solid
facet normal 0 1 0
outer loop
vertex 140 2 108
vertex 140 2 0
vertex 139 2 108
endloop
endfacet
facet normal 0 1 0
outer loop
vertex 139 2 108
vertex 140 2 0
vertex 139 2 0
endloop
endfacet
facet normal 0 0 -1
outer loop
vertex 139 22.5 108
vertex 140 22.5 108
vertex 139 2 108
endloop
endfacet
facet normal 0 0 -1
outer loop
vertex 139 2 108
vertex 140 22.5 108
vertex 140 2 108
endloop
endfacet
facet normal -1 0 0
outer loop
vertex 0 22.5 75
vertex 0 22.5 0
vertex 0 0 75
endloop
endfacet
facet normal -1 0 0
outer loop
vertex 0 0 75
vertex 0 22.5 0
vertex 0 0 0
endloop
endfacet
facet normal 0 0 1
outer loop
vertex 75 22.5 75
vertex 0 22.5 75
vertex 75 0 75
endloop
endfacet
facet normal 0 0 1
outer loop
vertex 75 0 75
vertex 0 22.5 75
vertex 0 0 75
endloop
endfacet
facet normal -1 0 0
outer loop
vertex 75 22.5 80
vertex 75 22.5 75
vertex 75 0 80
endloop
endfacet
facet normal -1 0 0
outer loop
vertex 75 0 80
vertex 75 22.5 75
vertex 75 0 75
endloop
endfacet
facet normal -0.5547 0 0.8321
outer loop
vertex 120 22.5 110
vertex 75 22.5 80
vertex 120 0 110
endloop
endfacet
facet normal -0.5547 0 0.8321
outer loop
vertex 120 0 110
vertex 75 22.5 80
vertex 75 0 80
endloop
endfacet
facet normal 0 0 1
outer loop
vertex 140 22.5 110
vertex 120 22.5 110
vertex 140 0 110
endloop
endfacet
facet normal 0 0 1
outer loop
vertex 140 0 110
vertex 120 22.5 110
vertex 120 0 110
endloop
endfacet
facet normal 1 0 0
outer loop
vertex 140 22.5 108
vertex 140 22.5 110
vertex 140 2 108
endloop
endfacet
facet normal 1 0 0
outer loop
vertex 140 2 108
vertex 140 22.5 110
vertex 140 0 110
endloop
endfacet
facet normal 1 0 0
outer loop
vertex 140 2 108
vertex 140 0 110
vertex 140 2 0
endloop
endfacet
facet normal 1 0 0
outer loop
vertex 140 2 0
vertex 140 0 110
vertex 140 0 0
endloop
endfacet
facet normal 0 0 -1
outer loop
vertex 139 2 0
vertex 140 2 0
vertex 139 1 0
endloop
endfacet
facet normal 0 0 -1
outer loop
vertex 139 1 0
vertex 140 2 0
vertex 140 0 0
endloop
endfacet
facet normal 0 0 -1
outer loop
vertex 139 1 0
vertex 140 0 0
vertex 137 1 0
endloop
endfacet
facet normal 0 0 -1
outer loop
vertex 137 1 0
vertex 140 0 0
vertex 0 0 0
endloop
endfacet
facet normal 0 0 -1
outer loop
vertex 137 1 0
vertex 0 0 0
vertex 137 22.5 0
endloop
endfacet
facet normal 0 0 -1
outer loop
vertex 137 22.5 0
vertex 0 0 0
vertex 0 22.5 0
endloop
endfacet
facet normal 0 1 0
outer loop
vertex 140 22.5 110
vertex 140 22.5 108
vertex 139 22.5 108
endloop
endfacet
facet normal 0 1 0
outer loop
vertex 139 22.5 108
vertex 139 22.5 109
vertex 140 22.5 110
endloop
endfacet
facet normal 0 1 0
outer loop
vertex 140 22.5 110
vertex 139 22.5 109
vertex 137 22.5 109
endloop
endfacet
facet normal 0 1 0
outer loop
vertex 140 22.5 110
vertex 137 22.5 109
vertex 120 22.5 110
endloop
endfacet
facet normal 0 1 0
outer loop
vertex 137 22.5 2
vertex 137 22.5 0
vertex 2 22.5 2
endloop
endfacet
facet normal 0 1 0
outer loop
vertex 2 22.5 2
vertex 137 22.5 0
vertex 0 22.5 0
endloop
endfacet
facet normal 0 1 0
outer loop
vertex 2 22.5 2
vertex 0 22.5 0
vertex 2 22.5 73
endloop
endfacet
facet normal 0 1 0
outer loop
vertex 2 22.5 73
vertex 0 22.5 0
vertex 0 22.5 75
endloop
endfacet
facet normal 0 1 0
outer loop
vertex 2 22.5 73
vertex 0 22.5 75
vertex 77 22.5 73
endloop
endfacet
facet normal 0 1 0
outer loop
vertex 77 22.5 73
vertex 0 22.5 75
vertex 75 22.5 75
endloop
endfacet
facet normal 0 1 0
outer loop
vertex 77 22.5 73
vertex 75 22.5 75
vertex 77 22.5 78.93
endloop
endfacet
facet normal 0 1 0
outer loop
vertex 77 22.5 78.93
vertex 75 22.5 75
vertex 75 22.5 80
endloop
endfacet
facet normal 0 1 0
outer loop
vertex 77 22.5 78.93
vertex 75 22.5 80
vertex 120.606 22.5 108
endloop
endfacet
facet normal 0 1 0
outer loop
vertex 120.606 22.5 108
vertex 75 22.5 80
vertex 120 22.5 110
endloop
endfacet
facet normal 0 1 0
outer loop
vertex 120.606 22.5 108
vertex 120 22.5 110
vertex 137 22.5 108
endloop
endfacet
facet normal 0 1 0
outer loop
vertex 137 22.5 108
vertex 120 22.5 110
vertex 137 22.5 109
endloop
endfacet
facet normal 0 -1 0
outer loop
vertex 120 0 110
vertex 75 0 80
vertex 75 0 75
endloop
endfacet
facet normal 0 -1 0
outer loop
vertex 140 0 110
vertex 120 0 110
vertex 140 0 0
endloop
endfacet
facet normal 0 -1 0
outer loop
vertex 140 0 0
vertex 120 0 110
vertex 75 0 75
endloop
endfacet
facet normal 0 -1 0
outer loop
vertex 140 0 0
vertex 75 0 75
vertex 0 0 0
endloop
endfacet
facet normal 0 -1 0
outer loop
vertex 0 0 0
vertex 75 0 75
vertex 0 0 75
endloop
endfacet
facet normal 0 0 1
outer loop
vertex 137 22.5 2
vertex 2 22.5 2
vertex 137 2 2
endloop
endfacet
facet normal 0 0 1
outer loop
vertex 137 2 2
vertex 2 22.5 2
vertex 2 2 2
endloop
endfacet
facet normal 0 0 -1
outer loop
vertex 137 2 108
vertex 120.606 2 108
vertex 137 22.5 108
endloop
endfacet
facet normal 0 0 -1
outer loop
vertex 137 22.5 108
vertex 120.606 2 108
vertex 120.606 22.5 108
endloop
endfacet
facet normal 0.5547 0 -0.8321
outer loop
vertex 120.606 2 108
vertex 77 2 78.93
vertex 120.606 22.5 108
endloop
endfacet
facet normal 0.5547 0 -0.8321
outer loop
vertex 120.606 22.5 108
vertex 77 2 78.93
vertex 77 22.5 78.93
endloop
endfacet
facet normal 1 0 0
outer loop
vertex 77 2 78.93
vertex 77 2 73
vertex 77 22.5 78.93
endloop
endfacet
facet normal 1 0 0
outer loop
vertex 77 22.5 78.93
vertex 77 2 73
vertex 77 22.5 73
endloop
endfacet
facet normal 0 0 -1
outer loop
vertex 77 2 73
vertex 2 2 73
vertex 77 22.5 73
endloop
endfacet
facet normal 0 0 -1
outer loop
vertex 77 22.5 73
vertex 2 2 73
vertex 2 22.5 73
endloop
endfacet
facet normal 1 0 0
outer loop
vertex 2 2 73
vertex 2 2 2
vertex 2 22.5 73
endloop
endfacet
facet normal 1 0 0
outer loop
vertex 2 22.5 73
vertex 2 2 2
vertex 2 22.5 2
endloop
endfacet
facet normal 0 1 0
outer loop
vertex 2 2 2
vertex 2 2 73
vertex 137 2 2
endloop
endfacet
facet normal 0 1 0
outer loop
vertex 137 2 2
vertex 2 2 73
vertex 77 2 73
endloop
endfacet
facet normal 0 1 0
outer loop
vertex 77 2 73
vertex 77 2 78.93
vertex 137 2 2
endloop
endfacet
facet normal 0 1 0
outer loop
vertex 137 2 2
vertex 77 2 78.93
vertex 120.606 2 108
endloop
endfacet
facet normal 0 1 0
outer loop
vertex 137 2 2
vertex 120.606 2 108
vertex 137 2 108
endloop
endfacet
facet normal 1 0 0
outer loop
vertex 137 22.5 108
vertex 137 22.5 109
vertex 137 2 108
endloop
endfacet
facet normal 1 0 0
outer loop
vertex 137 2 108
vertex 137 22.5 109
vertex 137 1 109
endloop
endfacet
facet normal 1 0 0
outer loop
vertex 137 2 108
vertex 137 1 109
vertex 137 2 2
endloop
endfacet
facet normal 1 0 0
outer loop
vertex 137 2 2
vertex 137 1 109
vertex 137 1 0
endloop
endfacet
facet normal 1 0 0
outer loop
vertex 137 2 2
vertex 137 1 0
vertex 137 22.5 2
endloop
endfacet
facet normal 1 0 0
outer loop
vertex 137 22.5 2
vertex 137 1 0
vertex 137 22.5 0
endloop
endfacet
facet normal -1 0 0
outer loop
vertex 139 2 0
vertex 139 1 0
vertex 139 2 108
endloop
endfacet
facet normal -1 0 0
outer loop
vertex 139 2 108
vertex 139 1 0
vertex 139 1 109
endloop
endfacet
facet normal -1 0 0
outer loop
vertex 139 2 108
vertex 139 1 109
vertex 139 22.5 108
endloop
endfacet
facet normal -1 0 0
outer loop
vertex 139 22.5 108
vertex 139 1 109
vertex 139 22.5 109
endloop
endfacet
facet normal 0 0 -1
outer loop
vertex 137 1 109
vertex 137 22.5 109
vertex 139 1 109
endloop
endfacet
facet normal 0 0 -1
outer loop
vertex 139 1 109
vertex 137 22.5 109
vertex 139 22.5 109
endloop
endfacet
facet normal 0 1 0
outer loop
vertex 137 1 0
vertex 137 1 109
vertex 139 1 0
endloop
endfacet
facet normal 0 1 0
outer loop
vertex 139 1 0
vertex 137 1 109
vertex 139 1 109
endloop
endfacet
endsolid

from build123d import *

# Parameters (mm, degrees)
BOSS_EXTRUDE1_DEPTH = 22.5
CUT_EXTRUDE1_DEPTH  = 20.5
SKETCH3_W           = 106
SKETCH3_H           = 20.5
CUT_EXTRUDE2_DEPTH  = 20
SKETCH4_W           = 3
SKETCH4_H           = 20.5
CUT_EXTRUDE3_DEPTH  = 20
SKETCH5_W           = 2
SKETCH5_H           = 20.5
CUT_EXTRUDE4_DEPTH  = 1
SKETCH7_W           = 2
SKETCH7_H           = 109
CUT_EXTRUDE6_DEPTH  = 1


with BuildPart() as part:
    # Base → Boss-Extrude1 (new body)
    with BuildSketch(Plane(origin=(0, 0, 0), x_dir=(1, 0, 0), z_dir=(0, 1, 0))):
        Polygon((0, 0), (140, 0), (140, -110), (120, -110), (75, -80), (75, -75), (0, -75), align=None)
    extrude(amount=BOSS_EXTRUDE1_DEPTH)

    # Sketch2 → Cut-Extrude1 (cut)
    with BuildSketch(Plane(origin=(0, 22.5, 0), x_dir=(1, 0, 0), z_dir=(0, 1, 0))):
        Polygon((2, -2), (2, -73), (77, -73), (77, -78.929632483), (120.605551275, -108), (138, -108), (138, -2), align=None)
    extrude(amount=-CUT_EXTRUDE1_DEPTH, mode=Mode.SUBTRACT)

    # Sketch3 → Cut-Extrude2 (cut)
    with BuildSketch(Plane.ZY.offset(-138)):
        with Locations((55, 12.25)):
            Rectangle(SKETCH3_W, SKETCH3_H)
    extrude(amount=-CUT_EXTRUDE2_DEPTH, mode=Mode.SUBTRACT)

    # Sketch4 → Cut-Extrude3 (cut)
    with BuildSketch(Plane.XY.offset(2)):
        with Locations((138.5, 12.25)):
            Rectangle(SKETCH4_W, SKETCH4_H)
    extrude(amount=-CUT_EXTRUDE3_DEPTH, mode=Mode.SUBTRACT)

    # Sketch5 → Cut-Extrude4 (cut)
    with BuildSketch(Plane(origin=(0, 0, 108), x_dir=(-1, 0, 0), z_dir=(0, 0, -1))):
        with Locations((-138, 12.25)):
            Rectangle(SKETCH5_W, SKETCH5_H)
    extrude(amount=-CUT_EXTRUDE4_DEPTH, mode=Mode.SUBTRACT)

    # Sketch7 → Cut-Extrude6 (cut)
    with BuildSketch(Plane(origin=(0, 2, 0), x_dir=(1, 0, 0), z_dir=(0, 1, 0))):
        with Locations((138, -54.5)):
            Rectangle(SKETCH7_W, SKETCH7_H)
    extrude(amount=-CUT_EXTRUDE6_DEPTH, mode=Mode.SUBTRACT)


solid = part.part
